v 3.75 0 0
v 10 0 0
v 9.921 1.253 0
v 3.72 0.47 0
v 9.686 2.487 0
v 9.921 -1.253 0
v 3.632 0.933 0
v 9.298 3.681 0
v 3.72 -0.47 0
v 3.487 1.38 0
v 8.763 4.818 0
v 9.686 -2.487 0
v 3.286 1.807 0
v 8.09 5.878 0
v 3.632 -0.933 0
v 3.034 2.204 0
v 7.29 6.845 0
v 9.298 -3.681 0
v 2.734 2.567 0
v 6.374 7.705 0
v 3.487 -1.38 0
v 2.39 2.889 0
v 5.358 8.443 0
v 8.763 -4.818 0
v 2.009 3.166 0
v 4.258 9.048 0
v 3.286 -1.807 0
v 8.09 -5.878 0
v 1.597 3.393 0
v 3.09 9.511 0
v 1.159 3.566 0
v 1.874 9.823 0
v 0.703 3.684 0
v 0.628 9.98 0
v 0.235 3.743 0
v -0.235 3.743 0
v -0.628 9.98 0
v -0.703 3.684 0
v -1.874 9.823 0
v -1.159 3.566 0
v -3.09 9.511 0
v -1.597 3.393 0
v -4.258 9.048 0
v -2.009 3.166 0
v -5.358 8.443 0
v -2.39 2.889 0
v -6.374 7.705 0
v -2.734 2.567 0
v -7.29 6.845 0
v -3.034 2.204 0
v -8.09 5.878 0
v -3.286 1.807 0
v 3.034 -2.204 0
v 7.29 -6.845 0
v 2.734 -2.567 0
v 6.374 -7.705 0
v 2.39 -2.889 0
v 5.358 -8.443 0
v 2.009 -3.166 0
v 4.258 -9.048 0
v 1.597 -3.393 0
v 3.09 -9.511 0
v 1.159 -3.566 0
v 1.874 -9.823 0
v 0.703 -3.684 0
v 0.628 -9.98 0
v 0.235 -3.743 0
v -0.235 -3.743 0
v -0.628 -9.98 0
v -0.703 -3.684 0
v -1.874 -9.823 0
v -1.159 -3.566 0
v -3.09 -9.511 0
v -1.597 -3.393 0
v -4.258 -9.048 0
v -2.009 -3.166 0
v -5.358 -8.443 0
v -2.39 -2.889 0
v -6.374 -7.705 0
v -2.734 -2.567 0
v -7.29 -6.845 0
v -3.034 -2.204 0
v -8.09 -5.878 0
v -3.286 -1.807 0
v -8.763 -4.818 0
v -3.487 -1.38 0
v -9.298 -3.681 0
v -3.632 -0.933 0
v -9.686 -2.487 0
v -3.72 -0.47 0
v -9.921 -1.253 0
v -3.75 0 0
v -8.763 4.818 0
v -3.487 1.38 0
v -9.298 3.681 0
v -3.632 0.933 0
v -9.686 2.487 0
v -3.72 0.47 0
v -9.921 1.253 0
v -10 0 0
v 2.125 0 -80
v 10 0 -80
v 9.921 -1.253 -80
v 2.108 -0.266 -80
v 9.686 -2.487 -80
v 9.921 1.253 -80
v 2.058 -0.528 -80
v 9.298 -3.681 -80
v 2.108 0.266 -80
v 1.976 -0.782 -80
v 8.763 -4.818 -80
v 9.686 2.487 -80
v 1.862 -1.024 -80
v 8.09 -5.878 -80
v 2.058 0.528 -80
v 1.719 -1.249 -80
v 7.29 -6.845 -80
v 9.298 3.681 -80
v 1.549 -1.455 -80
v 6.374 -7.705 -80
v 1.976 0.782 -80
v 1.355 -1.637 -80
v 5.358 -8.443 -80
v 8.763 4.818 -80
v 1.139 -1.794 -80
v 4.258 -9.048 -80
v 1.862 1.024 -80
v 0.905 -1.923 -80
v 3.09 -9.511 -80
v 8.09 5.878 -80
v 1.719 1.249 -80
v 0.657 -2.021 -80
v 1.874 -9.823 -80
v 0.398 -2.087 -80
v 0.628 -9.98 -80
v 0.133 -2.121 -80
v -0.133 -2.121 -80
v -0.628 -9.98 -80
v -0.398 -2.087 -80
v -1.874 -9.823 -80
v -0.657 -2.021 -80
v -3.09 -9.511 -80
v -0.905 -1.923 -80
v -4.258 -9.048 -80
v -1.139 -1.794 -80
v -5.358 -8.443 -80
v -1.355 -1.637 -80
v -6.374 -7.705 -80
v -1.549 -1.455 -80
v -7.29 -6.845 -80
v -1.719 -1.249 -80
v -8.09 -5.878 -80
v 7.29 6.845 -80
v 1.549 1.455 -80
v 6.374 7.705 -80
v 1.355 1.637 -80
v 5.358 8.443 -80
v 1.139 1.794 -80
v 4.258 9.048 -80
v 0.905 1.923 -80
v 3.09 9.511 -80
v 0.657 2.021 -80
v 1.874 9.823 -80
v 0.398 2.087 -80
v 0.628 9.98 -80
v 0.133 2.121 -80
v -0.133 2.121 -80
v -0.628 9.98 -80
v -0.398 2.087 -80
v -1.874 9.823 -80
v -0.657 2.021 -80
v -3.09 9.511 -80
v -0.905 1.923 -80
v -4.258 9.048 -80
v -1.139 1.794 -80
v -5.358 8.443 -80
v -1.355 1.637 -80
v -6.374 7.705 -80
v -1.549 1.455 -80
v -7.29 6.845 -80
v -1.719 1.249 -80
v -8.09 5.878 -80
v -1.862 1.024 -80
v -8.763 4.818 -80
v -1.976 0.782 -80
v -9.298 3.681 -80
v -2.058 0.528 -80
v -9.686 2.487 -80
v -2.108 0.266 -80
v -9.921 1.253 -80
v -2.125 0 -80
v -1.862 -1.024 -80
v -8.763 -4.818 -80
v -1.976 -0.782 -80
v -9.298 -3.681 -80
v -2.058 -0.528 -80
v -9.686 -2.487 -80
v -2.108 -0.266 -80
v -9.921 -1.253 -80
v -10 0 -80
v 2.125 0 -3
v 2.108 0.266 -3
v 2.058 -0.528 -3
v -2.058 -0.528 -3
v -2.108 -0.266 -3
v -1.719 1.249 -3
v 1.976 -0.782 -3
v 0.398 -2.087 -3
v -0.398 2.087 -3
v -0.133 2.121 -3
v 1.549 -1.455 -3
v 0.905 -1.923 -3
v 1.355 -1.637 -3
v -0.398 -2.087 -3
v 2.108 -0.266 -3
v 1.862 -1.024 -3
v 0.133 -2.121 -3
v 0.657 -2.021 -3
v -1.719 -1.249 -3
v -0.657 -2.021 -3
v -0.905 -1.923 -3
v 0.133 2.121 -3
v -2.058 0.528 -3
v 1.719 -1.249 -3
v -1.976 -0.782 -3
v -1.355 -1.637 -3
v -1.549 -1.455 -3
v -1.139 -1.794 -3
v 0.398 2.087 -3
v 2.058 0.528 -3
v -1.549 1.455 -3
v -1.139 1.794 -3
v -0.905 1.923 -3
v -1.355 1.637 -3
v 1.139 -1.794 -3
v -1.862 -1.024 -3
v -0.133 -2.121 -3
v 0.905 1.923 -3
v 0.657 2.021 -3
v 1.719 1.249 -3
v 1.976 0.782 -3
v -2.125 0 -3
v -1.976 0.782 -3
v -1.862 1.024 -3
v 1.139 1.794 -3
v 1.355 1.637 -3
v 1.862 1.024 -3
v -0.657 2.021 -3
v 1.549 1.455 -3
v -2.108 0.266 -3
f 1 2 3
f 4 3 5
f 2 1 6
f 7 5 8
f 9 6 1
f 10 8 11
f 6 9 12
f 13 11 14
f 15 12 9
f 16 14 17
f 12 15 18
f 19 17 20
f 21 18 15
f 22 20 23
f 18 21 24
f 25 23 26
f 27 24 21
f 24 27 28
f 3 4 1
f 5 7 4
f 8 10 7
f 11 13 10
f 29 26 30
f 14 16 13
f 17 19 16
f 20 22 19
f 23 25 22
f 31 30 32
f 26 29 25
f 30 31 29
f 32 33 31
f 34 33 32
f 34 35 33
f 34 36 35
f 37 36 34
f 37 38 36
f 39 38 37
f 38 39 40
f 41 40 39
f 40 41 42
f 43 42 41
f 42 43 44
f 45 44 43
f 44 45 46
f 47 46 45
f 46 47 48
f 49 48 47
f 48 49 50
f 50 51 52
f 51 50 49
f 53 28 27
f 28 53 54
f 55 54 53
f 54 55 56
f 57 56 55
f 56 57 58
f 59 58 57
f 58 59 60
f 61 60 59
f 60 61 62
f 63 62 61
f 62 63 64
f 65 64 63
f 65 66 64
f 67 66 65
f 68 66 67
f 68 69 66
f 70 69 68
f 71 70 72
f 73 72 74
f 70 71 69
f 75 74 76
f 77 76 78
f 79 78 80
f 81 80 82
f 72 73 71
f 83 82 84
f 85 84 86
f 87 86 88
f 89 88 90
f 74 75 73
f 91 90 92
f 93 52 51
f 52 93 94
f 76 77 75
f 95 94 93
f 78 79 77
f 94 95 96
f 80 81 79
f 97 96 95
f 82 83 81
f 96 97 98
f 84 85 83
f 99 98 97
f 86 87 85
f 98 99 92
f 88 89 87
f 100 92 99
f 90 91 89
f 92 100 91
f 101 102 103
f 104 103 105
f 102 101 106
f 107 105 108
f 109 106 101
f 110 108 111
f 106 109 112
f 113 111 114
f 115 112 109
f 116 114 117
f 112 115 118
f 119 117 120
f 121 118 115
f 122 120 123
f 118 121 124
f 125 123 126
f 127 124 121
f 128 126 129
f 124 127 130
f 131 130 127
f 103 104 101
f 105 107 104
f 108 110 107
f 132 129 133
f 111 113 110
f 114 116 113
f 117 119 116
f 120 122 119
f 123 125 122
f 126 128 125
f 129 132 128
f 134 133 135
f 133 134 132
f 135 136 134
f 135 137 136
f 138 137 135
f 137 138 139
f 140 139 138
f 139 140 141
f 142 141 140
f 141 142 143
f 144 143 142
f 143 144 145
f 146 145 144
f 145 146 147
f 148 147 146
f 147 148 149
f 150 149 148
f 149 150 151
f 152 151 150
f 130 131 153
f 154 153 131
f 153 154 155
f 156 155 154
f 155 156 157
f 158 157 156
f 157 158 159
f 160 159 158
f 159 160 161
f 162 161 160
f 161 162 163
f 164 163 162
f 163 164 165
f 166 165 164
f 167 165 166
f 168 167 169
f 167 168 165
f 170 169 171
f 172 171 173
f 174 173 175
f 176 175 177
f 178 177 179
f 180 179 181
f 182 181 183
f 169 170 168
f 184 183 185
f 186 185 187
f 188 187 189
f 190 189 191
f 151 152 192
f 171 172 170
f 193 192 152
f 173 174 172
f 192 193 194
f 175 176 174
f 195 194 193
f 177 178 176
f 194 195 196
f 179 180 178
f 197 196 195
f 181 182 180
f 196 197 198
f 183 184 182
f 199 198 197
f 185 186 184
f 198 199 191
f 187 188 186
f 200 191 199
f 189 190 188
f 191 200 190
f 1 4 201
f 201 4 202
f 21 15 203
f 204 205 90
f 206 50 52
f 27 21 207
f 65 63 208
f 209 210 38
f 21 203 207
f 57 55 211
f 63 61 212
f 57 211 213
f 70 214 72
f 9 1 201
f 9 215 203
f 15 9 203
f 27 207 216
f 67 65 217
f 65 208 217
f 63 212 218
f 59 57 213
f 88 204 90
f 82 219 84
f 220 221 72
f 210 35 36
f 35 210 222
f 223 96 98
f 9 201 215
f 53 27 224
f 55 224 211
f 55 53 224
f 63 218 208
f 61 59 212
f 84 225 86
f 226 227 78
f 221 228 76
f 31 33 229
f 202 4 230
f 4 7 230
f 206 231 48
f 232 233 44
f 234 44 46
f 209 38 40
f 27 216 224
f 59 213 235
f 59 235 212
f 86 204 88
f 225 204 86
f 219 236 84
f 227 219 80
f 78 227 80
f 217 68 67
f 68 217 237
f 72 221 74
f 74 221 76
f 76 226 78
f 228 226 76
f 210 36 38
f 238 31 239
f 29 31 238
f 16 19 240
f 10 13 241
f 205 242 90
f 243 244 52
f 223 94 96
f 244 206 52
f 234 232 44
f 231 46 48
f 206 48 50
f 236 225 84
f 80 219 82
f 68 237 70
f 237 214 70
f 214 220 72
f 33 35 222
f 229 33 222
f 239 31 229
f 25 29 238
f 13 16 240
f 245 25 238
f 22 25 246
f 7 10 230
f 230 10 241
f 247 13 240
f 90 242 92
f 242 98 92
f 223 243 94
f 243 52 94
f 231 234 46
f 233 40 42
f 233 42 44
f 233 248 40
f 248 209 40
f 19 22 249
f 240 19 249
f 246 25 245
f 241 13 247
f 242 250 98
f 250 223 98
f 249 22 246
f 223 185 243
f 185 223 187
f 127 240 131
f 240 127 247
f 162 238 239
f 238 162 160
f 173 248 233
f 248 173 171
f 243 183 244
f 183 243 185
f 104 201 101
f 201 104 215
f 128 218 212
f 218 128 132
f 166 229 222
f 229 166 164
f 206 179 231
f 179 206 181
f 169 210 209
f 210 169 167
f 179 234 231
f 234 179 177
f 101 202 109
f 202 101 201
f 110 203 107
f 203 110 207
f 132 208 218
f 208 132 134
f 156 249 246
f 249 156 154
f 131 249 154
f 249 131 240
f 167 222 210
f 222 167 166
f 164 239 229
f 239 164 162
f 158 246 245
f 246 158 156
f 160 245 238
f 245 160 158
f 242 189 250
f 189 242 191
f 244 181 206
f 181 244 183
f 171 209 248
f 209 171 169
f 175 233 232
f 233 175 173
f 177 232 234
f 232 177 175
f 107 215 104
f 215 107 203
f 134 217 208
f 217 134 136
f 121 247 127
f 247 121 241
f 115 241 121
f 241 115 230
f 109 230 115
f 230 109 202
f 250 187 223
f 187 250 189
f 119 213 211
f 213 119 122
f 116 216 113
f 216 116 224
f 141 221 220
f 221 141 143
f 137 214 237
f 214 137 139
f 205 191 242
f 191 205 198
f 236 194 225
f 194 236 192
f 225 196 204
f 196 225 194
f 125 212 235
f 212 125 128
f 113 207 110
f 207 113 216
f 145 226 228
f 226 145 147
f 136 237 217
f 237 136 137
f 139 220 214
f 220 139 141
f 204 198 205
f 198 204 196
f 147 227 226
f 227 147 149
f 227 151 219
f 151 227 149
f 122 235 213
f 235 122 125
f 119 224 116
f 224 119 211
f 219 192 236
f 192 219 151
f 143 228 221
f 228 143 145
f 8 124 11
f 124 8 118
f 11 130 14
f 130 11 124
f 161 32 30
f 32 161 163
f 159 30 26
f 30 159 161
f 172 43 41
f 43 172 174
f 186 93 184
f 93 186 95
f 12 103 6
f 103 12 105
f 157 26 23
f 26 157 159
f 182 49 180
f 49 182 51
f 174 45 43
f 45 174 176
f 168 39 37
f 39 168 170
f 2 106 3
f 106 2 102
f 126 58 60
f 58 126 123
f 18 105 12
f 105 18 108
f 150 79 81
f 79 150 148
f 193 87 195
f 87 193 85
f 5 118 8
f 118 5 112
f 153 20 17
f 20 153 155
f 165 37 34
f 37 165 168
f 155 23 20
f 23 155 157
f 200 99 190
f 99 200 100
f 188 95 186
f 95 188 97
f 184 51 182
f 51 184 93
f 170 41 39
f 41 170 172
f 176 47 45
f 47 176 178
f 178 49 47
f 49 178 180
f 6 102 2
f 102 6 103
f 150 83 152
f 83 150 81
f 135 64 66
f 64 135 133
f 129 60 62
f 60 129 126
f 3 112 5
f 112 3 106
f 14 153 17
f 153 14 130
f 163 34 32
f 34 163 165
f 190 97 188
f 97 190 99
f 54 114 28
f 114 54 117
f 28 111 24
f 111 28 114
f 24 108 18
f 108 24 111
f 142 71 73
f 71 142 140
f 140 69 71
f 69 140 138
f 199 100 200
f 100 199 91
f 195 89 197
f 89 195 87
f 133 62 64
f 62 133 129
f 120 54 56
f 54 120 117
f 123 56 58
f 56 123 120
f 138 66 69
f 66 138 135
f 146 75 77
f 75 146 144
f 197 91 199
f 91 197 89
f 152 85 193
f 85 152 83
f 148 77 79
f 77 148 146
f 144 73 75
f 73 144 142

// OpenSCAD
$fn = 50;


difference() {
	union() {
		translate(v = [0, 0, -80.0000000000]) {
			cylinder(h = 80, r = 10.0000000000);
		}
		cylinder(h = 0, r = 16.0000000000);
	}
	union() {
		translate(v = [0, 0, 0]) {
			rotate(a = [0, 0, 0]) {
				difference() {
					union() {
						#translate(v = [0, 0, -80.0000000000]) {
							cylinder(h = 80, r = 2.0000000000);
						}
						#translate(v = [0, 0, -3]) {
							cylinder(h = 3, r1 = 2.1250000000, r2 = 3.7500000000);
						}
						#translate(v = [0, 0, -80.0000000000]) {
							cylinder(h = 80, r = 2.1250000000);
						}
						#translate(v = [0, 0, -80.0000000000]) {
							cylinder(h = 80, r = 2.0000000000);
						}
					}
					union();
				}
			}
		}
	}
}
